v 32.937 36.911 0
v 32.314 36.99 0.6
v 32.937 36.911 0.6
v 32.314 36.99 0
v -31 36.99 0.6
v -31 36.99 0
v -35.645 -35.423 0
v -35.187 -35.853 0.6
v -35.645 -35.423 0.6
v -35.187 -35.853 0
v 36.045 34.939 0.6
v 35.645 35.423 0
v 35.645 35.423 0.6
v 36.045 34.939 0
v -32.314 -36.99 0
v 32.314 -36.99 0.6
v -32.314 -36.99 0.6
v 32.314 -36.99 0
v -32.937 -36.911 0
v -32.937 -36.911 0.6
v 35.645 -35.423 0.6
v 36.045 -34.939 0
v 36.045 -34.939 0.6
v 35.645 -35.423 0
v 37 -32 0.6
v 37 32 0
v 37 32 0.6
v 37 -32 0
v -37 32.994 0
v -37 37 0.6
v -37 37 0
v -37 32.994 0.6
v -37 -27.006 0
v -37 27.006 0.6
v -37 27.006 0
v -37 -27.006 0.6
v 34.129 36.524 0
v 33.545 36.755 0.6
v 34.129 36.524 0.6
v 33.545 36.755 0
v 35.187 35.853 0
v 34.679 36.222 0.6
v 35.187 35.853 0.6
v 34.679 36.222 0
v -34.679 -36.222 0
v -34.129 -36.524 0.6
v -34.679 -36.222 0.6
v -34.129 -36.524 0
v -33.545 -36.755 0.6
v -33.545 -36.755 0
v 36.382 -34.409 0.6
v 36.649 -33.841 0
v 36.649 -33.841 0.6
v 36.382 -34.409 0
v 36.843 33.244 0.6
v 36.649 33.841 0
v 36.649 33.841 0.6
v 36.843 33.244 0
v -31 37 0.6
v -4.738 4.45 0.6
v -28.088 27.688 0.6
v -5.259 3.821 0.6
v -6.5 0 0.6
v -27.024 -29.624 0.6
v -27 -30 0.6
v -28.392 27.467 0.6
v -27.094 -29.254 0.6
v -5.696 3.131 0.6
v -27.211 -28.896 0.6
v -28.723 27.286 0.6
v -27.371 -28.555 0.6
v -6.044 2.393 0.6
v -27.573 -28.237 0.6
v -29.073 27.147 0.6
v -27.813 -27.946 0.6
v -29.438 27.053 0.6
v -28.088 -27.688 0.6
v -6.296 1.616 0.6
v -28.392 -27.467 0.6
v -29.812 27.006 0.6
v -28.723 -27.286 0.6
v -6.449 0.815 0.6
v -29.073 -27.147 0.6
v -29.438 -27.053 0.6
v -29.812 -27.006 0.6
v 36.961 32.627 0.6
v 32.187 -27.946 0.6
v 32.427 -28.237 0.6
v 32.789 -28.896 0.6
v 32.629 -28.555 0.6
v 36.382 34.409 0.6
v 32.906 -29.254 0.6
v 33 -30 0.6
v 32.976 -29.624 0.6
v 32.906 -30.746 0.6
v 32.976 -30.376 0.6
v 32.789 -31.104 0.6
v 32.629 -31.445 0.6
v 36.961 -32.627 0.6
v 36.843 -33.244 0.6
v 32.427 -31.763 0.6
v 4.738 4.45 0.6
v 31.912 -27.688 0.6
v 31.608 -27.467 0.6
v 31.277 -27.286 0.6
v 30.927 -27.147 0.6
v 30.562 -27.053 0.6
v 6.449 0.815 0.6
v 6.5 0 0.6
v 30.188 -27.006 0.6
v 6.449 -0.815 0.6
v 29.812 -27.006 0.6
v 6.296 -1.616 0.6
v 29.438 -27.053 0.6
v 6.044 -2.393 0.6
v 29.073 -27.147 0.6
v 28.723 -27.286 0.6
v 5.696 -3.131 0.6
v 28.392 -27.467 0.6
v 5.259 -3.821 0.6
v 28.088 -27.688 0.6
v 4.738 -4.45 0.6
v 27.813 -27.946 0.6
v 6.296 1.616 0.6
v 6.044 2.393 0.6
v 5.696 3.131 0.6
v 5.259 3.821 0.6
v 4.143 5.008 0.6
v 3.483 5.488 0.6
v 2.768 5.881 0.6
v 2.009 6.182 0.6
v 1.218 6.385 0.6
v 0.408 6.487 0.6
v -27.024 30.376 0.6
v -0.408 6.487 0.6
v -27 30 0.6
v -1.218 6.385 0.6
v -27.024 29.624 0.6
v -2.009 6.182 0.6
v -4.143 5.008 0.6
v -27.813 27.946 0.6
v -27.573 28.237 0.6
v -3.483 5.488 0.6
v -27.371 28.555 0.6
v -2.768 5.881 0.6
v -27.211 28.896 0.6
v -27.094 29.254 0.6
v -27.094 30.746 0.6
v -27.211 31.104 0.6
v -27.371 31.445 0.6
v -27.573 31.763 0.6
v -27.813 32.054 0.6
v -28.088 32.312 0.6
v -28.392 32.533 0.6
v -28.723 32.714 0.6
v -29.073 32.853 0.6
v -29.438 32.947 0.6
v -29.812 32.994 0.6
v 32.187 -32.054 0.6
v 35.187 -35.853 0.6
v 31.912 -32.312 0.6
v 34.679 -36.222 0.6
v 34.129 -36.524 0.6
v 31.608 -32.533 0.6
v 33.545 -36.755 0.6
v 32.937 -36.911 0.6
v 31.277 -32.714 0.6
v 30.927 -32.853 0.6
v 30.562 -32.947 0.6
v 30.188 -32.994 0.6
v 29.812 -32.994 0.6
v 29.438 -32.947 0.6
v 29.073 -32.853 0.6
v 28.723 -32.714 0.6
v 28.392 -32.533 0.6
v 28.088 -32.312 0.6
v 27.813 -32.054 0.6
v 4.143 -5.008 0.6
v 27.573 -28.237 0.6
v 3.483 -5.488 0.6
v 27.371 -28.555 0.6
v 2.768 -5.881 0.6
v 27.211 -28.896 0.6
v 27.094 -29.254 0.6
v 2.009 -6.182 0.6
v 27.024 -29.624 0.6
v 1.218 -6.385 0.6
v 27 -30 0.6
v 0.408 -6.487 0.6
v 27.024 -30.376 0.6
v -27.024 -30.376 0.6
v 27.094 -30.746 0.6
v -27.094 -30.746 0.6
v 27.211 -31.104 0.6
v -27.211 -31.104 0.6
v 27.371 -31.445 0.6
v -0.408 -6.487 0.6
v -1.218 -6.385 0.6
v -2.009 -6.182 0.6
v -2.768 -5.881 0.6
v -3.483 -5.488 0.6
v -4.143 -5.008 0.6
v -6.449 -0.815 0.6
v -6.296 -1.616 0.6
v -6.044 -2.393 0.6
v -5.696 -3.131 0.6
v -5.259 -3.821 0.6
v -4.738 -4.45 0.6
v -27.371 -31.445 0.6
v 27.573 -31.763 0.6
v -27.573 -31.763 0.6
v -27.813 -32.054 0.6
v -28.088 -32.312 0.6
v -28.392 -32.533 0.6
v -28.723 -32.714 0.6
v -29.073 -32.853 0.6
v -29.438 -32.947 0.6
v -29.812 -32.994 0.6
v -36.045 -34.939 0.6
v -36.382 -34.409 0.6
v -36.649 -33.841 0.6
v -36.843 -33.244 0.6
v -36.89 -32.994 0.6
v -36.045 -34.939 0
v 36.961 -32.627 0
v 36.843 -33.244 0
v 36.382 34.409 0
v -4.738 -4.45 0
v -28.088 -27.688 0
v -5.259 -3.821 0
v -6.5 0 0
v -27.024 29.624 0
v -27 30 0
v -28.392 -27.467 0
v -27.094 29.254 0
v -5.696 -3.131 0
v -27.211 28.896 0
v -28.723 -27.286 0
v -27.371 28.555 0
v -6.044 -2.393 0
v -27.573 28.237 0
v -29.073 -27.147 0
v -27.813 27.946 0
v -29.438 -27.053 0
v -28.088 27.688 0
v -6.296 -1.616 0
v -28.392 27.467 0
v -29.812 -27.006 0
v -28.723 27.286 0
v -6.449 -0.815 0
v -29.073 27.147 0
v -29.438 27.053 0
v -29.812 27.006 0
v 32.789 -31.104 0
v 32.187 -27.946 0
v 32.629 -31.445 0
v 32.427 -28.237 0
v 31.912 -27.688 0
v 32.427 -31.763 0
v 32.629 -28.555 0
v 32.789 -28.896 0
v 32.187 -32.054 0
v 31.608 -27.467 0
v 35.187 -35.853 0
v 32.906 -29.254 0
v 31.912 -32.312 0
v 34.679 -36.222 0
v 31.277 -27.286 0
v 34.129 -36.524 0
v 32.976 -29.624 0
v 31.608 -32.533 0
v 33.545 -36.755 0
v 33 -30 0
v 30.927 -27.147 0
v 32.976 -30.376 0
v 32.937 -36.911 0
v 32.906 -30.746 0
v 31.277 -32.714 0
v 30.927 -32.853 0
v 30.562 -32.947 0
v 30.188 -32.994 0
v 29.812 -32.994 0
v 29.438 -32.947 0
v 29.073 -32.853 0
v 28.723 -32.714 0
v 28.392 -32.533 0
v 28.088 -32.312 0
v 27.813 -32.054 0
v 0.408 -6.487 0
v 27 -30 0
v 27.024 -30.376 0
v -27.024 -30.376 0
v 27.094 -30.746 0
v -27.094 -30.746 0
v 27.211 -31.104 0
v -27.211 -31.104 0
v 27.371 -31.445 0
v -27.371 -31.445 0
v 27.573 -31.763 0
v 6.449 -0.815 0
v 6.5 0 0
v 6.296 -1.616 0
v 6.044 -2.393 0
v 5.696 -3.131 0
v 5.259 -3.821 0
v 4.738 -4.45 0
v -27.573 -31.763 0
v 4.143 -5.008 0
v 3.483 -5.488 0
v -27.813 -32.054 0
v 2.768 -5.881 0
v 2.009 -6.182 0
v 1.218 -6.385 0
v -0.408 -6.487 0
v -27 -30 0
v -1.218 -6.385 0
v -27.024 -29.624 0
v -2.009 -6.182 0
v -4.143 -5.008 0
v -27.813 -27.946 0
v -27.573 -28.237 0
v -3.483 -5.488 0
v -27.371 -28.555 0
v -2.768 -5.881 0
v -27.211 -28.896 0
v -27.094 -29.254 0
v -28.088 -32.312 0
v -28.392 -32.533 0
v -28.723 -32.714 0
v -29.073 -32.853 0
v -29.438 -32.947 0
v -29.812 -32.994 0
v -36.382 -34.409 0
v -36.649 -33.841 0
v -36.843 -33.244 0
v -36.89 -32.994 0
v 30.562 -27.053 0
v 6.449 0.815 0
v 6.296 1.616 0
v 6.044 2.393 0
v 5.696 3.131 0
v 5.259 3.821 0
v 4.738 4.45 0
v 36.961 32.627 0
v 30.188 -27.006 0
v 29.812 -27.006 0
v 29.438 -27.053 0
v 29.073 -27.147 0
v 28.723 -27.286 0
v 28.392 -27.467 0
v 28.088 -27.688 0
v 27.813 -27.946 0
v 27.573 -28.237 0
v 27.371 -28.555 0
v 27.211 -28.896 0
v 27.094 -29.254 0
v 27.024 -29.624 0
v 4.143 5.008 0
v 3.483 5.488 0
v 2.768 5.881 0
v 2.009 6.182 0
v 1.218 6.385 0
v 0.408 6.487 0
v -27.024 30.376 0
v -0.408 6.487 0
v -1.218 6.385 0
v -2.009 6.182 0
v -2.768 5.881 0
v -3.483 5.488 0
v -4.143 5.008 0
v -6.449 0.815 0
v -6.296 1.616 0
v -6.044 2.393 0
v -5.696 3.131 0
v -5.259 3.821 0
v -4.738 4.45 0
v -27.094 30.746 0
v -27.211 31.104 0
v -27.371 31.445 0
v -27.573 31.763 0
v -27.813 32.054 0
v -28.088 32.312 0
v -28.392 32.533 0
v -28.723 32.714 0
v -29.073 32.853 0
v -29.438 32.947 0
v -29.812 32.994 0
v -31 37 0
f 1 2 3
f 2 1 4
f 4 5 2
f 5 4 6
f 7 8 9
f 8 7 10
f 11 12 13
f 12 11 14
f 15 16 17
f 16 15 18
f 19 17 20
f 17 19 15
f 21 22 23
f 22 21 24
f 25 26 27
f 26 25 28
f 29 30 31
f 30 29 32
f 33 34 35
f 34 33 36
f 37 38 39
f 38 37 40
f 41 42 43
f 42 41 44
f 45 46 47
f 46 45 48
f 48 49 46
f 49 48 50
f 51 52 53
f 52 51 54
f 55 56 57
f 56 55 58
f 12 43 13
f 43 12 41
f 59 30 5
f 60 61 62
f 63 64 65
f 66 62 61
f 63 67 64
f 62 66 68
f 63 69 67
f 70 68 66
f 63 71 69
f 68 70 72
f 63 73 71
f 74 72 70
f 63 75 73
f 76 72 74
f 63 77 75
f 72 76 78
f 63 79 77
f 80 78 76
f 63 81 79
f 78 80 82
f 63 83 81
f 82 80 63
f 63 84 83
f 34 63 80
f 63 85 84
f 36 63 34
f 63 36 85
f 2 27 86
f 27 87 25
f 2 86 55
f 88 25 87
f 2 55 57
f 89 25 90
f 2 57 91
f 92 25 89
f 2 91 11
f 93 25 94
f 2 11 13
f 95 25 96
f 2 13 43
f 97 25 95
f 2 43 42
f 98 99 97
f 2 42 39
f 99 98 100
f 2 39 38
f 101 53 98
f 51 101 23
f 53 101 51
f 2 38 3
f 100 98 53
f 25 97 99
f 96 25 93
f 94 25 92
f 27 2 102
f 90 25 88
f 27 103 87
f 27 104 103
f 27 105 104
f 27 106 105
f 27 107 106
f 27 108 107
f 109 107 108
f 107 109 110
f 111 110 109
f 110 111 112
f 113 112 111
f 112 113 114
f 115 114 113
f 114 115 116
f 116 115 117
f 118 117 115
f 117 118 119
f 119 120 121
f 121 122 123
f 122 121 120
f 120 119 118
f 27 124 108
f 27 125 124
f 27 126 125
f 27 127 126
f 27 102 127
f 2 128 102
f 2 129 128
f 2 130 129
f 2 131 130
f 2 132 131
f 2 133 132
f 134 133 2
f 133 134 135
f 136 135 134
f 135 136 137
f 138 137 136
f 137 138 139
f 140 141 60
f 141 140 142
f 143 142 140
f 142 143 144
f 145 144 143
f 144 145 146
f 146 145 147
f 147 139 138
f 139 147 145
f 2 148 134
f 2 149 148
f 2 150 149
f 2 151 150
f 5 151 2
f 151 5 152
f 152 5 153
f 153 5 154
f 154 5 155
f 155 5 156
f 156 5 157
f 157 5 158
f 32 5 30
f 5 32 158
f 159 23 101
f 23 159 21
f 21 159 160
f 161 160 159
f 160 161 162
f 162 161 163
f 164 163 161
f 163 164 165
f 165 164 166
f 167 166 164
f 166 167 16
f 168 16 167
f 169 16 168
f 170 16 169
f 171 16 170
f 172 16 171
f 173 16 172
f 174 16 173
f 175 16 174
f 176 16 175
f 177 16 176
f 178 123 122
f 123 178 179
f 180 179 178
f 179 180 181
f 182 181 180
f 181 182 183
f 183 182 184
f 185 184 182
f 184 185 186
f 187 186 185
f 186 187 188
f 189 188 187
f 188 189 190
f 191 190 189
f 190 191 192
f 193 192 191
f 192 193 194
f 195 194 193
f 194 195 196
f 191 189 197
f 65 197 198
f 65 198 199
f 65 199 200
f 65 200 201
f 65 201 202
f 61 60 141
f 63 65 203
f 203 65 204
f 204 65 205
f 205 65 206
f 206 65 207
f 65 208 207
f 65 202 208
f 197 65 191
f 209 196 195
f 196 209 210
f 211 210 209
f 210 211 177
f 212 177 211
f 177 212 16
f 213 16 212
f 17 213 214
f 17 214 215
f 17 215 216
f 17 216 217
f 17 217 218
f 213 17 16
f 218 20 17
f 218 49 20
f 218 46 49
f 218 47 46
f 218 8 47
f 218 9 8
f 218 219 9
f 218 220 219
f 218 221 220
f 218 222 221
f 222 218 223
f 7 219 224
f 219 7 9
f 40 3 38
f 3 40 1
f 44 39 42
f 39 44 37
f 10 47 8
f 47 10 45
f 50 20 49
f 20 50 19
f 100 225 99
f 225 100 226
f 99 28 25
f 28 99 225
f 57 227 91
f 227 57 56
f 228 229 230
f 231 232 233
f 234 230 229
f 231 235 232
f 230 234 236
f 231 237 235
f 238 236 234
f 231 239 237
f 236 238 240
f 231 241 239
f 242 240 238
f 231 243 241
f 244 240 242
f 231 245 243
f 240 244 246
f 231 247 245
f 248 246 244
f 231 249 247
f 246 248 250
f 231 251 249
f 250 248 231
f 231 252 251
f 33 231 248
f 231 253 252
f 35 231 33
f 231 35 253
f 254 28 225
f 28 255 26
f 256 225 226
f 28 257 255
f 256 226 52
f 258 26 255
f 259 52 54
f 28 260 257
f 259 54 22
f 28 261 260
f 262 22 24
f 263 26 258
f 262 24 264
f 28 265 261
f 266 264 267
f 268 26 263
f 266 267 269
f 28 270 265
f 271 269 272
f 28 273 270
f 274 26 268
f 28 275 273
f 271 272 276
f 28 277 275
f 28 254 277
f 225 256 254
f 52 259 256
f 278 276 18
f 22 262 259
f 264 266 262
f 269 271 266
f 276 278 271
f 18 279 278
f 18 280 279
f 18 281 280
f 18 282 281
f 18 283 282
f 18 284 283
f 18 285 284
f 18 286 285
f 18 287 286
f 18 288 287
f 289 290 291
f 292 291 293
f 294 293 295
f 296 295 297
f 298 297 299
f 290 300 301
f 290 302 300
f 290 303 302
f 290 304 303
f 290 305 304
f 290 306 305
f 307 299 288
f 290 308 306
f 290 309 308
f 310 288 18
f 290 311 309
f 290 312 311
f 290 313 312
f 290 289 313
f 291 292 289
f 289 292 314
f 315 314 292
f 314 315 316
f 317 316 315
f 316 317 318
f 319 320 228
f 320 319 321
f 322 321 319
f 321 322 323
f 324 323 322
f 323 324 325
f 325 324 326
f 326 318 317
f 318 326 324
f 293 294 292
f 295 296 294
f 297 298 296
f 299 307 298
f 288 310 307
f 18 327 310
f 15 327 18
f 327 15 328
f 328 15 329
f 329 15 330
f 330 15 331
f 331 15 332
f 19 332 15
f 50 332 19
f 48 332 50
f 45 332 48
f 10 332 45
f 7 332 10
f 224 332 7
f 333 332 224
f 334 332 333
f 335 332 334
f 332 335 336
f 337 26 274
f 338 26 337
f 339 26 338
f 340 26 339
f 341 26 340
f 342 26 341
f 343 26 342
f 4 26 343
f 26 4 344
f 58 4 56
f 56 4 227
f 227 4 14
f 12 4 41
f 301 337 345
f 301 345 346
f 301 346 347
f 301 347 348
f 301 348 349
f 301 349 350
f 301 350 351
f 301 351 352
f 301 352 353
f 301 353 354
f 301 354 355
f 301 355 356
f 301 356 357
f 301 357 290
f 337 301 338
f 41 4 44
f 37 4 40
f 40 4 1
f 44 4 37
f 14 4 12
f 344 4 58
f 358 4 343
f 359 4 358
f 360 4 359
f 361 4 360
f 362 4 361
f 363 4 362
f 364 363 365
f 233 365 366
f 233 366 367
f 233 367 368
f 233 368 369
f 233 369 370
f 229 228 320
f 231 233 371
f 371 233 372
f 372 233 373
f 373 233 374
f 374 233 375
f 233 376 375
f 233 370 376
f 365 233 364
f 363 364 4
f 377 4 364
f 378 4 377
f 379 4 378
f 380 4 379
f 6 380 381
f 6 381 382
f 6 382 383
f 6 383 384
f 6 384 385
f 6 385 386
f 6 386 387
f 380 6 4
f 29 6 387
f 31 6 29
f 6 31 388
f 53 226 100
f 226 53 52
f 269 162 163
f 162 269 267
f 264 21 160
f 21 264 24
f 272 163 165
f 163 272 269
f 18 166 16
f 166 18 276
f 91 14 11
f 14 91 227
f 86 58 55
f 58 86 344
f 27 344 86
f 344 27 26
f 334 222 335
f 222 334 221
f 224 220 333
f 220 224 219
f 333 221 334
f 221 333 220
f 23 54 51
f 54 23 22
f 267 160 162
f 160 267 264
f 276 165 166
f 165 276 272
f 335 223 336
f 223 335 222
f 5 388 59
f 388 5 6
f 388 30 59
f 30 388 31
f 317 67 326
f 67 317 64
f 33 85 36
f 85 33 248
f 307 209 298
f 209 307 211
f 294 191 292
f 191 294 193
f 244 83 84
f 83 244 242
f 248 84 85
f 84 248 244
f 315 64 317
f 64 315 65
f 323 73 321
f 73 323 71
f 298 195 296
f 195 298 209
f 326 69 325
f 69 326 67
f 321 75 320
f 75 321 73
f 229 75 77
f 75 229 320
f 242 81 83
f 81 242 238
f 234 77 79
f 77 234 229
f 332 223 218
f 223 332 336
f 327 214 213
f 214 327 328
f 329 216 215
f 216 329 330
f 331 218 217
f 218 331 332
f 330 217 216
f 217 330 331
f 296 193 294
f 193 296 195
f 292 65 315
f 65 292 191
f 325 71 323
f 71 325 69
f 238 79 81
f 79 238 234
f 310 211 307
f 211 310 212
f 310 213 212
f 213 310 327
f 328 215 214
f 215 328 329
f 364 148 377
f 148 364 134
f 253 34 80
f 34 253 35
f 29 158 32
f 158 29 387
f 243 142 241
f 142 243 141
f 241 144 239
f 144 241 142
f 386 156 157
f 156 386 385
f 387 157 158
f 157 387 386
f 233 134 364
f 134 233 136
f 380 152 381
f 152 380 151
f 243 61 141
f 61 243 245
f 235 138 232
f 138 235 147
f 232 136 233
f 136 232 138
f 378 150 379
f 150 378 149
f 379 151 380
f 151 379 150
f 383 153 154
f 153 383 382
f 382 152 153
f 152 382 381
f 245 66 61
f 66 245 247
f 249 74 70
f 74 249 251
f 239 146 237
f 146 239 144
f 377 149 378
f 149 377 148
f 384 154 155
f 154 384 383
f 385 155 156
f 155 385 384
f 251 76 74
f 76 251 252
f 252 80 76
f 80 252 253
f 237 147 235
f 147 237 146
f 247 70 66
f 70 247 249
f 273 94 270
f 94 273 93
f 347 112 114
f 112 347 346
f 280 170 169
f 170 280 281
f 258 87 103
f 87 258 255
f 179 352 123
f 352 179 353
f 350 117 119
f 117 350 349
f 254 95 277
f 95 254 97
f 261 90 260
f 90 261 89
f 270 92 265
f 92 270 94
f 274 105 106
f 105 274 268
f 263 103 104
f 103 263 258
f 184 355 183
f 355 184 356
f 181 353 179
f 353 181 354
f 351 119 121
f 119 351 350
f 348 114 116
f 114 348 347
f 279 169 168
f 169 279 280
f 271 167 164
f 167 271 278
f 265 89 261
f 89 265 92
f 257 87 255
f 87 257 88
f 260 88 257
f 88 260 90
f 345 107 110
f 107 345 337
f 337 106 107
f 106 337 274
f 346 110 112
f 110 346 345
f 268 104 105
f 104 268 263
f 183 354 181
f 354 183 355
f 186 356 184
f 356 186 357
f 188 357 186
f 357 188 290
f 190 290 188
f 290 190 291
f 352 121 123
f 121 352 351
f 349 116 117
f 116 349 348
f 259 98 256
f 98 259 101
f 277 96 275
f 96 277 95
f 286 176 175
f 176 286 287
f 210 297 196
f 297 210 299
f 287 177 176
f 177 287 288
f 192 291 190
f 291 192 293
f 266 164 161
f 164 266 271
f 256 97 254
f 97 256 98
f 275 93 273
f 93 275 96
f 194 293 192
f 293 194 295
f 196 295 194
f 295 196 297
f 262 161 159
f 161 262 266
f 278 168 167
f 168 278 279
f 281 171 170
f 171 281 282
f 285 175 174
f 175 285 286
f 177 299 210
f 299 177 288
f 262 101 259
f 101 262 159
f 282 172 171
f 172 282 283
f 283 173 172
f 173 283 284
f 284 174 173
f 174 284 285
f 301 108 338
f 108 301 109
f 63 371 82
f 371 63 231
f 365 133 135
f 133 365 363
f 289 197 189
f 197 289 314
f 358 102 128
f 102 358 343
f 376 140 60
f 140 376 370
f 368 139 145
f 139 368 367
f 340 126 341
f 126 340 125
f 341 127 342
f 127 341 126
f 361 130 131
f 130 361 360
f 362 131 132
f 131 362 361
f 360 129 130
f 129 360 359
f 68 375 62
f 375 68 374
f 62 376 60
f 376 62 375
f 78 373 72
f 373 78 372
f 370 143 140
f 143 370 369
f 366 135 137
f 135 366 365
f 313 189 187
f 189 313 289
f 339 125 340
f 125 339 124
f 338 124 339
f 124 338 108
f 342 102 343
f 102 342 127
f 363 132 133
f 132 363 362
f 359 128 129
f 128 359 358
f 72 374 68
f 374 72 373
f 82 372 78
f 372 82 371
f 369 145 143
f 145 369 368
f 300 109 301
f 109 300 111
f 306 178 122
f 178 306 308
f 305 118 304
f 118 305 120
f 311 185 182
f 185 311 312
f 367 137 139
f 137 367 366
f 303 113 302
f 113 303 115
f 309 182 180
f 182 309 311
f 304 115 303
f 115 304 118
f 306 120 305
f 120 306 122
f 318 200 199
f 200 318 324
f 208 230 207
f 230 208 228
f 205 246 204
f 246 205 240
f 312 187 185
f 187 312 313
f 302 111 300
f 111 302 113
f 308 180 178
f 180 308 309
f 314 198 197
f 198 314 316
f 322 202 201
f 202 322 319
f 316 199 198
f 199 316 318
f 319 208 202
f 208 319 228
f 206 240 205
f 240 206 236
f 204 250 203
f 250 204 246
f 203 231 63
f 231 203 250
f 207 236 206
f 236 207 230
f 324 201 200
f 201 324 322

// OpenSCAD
$fn = 50;


difference() {
	union() {
		translate(v = [0, 0, 0]) {
			rotate(a = [0, 0, 0]) {
				hull() {
					translate(v = [-32.0000000000, 32.0000000000, 0]) {
						rotate(a = [0, 0, 0]) {
							translate(v = [0, 0, 0]) {
								rotate(a = [0, 0, 0]) {
									cylinder(h = 0.6000000000, r = 5);
								}
							}
						}
					}
					translate(v = [32.0000000000, 32.0000000000, 0]) {
						rotate(a = [0, 0, 0]) {
							translate(v = [0, 0, 0]) {
								rotate(a = [0, 0, 0]) {
									cylinder(h = 0.6000000000, r = 5);
								}
							}
						}
					}
					translate(v = [-32.0000000000, -32.0000000000, 0]) {
						rotate(a = [0, 0, 0]) {
							translate(v = [0, 0, 0]) {
								rotate(a = [0, 0, 0]) {
									cylinder(h = 0.6000000000, r = 5);
								}
							}
						}
					}
					translate(v = [32.0000000000, -32.0000000000, 0]) {
						rotate(a = [0, 0, 0]) {
							translate(v = [0, 0, 0]) {
								rotate(a = [0, 0, 0]) {
									cylinder(h = 0.6000000000, r = 5);
								}
							}
						}
					}
				}
			}
		}
		translate(v = [-37.0000000000, 31.0000000000, 0]) {
			rotate(a = [0, 0, 0]) {
				cube(size = [6, 6, 0.6000000000]);
			}
		}
	}
	union() {
		translate(v = [-37.5000000000, -30.0000000000, -125]) {
			rotate(a = [0, 0, 0]) {
				hull() {
					translate(v = [7.5000000000, 0, 0]) {
						rotate(a = [0, 0, 0]) {
							translate(v = [0, 0, 0]) {
								rotate(a = [0, 0, 0]) {
									cylinder(h = 250, r = 3.0000000000);
								}
							}
						}
					}
					translate(v = [-7.5000000000, 0, 0]) {
						rotate(a = [0, 0, 0]) {
							translate(v = [0, 0, 0]) {
								rotate(a = [0, 0, 0]) {
									cylinder(h = 250, r = 3.0000000000);
								}
							}
						}
					}
				}
			}
		}
		translate(v = [-37.5000000000, 30.0000000000, -125]) {
			rotate(a = [0, 0, 0]) {
				hull() {
					translate(v = [7.5000000000, 0, 0]) {
						rotate(a = [0, 0, 0]) {
							translate(v = [0, 0, 0]) {
								rotate(a = [0, 0, 0]) {
									cylinder(h = 250, r = 3.0000000000);
								}
							}
						}
					}
					translate(v = [-7.5000000000, 0, 0]) {
						rotate(a = [0, 0, 0]) {
							translate(v = [0, 0, 0]) {
								rotate(a = [0, 0, 0]) {
									cylinder(h = 250, r = 3.0000000000);
								}
							}
						}
					}
				}
			}
		}
		translate(v = [30.0000000000, -30.0000000000, -125.0000000000]) {
			rotate(a = [0, 0, 0]) {
				cylinder(h = 250, r = 3.0000000000);
			}
		}
		translate(v = [0, 0, 0.0000000000]) {
			rotate(a = [0, 0, 0]) {
				cylinder(h = 0.6000000000, r = 6.5000000000);
			}
		}
	}
}
